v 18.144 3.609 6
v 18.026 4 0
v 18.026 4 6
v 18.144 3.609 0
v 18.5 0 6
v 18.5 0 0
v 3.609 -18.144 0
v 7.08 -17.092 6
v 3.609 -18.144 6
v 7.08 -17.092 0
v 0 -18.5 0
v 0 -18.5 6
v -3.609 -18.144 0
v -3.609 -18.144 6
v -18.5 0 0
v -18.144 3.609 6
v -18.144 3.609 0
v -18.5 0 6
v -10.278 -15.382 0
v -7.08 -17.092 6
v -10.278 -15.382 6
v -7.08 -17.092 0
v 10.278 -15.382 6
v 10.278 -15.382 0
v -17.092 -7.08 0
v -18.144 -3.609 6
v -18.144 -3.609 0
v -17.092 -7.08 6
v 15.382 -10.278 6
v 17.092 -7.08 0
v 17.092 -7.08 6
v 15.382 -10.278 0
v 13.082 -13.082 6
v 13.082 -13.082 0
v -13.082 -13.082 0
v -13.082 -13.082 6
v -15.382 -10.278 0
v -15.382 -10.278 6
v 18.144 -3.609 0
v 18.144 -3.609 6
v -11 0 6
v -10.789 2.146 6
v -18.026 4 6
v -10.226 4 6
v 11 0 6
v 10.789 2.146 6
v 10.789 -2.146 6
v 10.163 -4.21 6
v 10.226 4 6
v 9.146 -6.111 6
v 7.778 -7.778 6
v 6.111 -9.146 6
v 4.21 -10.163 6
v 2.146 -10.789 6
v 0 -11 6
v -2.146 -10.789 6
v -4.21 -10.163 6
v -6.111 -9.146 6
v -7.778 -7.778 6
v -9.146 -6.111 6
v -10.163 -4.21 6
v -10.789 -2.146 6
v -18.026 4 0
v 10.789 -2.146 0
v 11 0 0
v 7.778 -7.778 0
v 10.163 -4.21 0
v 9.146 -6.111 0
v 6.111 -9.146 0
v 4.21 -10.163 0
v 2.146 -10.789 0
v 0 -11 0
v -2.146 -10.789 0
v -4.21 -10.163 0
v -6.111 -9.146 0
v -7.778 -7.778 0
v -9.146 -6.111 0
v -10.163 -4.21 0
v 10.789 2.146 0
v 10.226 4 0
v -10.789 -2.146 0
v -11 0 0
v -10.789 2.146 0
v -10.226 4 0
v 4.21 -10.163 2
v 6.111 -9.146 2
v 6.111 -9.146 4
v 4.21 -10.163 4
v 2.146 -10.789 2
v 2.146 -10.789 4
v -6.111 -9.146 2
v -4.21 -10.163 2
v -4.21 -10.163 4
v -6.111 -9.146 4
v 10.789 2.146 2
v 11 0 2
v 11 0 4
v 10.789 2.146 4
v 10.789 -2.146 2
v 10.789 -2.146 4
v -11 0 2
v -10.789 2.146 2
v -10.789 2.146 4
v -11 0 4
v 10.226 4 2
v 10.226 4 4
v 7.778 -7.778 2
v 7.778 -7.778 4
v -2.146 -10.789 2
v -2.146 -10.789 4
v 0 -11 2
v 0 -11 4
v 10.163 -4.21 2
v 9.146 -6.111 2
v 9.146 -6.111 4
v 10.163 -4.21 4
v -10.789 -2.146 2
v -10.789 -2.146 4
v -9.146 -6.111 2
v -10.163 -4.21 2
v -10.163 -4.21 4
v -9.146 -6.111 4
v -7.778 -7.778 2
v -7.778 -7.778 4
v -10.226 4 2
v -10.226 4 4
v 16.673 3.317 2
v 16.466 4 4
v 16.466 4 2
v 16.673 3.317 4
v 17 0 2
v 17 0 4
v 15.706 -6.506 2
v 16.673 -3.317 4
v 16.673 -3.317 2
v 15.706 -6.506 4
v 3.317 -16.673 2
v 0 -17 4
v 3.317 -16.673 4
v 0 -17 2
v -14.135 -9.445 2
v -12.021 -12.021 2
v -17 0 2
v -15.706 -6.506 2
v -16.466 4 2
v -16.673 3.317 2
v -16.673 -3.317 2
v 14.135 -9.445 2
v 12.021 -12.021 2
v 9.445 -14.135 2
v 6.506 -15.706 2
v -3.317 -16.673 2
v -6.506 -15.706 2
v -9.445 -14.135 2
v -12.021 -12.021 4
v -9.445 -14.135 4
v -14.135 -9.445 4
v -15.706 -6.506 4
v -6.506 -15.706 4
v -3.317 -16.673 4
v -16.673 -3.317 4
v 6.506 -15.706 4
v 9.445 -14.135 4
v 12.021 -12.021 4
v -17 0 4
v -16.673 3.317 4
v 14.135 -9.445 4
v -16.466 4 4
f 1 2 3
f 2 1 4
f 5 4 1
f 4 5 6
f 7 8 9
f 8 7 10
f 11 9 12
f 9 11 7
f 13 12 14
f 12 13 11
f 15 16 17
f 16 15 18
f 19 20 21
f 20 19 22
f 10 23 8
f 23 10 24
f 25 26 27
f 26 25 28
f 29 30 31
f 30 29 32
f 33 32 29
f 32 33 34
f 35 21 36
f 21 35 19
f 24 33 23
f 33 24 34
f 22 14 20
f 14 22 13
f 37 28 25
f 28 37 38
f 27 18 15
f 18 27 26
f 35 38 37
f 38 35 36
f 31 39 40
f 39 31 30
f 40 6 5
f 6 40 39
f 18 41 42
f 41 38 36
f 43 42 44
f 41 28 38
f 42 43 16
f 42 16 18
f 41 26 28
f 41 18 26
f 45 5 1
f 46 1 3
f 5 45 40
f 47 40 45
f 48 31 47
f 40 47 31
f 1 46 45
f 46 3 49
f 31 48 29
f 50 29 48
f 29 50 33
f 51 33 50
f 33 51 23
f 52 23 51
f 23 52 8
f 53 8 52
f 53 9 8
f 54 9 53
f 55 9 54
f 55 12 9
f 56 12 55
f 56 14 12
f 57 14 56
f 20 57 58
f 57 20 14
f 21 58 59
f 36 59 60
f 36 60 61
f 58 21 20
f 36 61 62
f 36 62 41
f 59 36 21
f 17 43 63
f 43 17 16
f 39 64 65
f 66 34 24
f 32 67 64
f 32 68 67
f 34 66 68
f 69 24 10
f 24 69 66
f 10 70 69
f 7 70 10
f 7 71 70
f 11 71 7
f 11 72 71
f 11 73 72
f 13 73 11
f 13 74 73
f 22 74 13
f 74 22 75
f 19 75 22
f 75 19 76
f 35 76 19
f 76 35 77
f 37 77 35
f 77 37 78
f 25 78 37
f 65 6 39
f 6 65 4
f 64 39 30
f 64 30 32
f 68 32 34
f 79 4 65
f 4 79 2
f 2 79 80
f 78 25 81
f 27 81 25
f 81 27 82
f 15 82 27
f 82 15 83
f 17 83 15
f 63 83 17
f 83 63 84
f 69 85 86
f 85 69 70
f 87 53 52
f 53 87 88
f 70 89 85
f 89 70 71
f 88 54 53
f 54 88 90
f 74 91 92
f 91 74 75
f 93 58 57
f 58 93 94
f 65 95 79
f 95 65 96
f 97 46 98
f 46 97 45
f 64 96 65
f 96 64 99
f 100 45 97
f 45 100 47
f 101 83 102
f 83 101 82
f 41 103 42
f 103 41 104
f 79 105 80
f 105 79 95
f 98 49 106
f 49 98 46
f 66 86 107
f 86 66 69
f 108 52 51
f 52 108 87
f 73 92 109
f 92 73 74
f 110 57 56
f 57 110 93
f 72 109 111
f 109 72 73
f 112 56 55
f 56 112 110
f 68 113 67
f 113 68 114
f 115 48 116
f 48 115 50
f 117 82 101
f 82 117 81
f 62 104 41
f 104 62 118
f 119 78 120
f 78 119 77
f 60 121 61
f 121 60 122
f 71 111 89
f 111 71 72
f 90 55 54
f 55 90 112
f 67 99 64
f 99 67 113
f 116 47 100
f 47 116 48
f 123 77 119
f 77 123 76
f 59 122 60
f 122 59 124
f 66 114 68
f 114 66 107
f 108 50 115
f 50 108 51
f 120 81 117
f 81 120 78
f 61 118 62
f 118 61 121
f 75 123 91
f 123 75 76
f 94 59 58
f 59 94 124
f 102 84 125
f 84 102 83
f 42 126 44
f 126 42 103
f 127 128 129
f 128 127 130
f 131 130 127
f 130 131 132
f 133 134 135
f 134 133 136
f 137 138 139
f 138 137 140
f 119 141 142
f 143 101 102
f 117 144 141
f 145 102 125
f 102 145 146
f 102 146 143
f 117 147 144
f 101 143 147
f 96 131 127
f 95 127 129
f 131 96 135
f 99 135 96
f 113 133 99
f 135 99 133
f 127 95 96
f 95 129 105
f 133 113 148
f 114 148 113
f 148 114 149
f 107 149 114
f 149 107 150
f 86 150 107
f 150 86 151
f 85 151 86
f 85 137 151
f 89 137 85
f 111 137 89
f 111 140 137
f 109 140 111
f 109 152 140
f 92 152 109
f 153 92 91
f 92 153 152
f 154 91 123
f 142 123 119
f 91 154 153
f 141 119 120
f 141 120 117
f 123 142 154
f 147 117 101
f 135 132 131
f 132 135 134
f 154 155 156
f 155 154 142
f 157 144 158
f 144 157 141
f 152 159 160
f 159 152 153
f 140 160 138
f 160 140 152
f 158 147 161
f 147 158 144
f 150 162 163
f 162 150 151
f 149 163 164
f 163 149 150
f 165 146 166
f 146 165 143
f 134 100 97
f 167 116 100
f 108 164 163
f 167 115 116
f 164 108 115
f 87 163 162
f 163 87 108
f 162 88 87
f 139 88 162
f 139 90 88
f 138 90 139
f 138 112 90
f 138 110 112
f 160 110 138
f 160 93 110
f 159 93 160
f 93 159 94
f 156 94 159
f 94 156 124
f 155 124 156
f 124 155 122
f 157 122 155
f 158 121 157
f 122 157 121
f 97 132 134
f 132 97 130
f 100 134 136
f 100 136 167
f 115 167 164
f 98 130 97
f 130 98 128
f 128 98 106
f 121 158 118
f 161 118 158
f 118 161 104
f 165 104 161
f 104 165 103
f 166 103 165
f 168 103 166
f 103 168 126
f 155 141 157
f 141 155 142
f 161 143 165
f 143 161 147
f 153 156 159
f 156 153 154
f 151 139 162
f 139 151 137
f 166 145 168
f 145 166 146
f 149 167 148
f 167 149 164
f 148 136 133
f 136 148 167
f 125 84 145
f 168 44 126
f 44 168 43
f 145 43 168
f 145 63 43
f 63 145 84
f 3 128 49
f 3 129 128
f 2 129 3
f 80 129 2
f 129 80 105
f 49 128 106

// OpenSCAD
$fn=32;
t=6;

difference() {
  cylinder(r=18.5,h=t);
  translate([0,0,-1]) cylinder(r=11,h=t+2);
  translate([0,0,2]) cylinder(r=17,h=t-4);
  translate([-50,4,-1]) cube([100,100,100]);
}
